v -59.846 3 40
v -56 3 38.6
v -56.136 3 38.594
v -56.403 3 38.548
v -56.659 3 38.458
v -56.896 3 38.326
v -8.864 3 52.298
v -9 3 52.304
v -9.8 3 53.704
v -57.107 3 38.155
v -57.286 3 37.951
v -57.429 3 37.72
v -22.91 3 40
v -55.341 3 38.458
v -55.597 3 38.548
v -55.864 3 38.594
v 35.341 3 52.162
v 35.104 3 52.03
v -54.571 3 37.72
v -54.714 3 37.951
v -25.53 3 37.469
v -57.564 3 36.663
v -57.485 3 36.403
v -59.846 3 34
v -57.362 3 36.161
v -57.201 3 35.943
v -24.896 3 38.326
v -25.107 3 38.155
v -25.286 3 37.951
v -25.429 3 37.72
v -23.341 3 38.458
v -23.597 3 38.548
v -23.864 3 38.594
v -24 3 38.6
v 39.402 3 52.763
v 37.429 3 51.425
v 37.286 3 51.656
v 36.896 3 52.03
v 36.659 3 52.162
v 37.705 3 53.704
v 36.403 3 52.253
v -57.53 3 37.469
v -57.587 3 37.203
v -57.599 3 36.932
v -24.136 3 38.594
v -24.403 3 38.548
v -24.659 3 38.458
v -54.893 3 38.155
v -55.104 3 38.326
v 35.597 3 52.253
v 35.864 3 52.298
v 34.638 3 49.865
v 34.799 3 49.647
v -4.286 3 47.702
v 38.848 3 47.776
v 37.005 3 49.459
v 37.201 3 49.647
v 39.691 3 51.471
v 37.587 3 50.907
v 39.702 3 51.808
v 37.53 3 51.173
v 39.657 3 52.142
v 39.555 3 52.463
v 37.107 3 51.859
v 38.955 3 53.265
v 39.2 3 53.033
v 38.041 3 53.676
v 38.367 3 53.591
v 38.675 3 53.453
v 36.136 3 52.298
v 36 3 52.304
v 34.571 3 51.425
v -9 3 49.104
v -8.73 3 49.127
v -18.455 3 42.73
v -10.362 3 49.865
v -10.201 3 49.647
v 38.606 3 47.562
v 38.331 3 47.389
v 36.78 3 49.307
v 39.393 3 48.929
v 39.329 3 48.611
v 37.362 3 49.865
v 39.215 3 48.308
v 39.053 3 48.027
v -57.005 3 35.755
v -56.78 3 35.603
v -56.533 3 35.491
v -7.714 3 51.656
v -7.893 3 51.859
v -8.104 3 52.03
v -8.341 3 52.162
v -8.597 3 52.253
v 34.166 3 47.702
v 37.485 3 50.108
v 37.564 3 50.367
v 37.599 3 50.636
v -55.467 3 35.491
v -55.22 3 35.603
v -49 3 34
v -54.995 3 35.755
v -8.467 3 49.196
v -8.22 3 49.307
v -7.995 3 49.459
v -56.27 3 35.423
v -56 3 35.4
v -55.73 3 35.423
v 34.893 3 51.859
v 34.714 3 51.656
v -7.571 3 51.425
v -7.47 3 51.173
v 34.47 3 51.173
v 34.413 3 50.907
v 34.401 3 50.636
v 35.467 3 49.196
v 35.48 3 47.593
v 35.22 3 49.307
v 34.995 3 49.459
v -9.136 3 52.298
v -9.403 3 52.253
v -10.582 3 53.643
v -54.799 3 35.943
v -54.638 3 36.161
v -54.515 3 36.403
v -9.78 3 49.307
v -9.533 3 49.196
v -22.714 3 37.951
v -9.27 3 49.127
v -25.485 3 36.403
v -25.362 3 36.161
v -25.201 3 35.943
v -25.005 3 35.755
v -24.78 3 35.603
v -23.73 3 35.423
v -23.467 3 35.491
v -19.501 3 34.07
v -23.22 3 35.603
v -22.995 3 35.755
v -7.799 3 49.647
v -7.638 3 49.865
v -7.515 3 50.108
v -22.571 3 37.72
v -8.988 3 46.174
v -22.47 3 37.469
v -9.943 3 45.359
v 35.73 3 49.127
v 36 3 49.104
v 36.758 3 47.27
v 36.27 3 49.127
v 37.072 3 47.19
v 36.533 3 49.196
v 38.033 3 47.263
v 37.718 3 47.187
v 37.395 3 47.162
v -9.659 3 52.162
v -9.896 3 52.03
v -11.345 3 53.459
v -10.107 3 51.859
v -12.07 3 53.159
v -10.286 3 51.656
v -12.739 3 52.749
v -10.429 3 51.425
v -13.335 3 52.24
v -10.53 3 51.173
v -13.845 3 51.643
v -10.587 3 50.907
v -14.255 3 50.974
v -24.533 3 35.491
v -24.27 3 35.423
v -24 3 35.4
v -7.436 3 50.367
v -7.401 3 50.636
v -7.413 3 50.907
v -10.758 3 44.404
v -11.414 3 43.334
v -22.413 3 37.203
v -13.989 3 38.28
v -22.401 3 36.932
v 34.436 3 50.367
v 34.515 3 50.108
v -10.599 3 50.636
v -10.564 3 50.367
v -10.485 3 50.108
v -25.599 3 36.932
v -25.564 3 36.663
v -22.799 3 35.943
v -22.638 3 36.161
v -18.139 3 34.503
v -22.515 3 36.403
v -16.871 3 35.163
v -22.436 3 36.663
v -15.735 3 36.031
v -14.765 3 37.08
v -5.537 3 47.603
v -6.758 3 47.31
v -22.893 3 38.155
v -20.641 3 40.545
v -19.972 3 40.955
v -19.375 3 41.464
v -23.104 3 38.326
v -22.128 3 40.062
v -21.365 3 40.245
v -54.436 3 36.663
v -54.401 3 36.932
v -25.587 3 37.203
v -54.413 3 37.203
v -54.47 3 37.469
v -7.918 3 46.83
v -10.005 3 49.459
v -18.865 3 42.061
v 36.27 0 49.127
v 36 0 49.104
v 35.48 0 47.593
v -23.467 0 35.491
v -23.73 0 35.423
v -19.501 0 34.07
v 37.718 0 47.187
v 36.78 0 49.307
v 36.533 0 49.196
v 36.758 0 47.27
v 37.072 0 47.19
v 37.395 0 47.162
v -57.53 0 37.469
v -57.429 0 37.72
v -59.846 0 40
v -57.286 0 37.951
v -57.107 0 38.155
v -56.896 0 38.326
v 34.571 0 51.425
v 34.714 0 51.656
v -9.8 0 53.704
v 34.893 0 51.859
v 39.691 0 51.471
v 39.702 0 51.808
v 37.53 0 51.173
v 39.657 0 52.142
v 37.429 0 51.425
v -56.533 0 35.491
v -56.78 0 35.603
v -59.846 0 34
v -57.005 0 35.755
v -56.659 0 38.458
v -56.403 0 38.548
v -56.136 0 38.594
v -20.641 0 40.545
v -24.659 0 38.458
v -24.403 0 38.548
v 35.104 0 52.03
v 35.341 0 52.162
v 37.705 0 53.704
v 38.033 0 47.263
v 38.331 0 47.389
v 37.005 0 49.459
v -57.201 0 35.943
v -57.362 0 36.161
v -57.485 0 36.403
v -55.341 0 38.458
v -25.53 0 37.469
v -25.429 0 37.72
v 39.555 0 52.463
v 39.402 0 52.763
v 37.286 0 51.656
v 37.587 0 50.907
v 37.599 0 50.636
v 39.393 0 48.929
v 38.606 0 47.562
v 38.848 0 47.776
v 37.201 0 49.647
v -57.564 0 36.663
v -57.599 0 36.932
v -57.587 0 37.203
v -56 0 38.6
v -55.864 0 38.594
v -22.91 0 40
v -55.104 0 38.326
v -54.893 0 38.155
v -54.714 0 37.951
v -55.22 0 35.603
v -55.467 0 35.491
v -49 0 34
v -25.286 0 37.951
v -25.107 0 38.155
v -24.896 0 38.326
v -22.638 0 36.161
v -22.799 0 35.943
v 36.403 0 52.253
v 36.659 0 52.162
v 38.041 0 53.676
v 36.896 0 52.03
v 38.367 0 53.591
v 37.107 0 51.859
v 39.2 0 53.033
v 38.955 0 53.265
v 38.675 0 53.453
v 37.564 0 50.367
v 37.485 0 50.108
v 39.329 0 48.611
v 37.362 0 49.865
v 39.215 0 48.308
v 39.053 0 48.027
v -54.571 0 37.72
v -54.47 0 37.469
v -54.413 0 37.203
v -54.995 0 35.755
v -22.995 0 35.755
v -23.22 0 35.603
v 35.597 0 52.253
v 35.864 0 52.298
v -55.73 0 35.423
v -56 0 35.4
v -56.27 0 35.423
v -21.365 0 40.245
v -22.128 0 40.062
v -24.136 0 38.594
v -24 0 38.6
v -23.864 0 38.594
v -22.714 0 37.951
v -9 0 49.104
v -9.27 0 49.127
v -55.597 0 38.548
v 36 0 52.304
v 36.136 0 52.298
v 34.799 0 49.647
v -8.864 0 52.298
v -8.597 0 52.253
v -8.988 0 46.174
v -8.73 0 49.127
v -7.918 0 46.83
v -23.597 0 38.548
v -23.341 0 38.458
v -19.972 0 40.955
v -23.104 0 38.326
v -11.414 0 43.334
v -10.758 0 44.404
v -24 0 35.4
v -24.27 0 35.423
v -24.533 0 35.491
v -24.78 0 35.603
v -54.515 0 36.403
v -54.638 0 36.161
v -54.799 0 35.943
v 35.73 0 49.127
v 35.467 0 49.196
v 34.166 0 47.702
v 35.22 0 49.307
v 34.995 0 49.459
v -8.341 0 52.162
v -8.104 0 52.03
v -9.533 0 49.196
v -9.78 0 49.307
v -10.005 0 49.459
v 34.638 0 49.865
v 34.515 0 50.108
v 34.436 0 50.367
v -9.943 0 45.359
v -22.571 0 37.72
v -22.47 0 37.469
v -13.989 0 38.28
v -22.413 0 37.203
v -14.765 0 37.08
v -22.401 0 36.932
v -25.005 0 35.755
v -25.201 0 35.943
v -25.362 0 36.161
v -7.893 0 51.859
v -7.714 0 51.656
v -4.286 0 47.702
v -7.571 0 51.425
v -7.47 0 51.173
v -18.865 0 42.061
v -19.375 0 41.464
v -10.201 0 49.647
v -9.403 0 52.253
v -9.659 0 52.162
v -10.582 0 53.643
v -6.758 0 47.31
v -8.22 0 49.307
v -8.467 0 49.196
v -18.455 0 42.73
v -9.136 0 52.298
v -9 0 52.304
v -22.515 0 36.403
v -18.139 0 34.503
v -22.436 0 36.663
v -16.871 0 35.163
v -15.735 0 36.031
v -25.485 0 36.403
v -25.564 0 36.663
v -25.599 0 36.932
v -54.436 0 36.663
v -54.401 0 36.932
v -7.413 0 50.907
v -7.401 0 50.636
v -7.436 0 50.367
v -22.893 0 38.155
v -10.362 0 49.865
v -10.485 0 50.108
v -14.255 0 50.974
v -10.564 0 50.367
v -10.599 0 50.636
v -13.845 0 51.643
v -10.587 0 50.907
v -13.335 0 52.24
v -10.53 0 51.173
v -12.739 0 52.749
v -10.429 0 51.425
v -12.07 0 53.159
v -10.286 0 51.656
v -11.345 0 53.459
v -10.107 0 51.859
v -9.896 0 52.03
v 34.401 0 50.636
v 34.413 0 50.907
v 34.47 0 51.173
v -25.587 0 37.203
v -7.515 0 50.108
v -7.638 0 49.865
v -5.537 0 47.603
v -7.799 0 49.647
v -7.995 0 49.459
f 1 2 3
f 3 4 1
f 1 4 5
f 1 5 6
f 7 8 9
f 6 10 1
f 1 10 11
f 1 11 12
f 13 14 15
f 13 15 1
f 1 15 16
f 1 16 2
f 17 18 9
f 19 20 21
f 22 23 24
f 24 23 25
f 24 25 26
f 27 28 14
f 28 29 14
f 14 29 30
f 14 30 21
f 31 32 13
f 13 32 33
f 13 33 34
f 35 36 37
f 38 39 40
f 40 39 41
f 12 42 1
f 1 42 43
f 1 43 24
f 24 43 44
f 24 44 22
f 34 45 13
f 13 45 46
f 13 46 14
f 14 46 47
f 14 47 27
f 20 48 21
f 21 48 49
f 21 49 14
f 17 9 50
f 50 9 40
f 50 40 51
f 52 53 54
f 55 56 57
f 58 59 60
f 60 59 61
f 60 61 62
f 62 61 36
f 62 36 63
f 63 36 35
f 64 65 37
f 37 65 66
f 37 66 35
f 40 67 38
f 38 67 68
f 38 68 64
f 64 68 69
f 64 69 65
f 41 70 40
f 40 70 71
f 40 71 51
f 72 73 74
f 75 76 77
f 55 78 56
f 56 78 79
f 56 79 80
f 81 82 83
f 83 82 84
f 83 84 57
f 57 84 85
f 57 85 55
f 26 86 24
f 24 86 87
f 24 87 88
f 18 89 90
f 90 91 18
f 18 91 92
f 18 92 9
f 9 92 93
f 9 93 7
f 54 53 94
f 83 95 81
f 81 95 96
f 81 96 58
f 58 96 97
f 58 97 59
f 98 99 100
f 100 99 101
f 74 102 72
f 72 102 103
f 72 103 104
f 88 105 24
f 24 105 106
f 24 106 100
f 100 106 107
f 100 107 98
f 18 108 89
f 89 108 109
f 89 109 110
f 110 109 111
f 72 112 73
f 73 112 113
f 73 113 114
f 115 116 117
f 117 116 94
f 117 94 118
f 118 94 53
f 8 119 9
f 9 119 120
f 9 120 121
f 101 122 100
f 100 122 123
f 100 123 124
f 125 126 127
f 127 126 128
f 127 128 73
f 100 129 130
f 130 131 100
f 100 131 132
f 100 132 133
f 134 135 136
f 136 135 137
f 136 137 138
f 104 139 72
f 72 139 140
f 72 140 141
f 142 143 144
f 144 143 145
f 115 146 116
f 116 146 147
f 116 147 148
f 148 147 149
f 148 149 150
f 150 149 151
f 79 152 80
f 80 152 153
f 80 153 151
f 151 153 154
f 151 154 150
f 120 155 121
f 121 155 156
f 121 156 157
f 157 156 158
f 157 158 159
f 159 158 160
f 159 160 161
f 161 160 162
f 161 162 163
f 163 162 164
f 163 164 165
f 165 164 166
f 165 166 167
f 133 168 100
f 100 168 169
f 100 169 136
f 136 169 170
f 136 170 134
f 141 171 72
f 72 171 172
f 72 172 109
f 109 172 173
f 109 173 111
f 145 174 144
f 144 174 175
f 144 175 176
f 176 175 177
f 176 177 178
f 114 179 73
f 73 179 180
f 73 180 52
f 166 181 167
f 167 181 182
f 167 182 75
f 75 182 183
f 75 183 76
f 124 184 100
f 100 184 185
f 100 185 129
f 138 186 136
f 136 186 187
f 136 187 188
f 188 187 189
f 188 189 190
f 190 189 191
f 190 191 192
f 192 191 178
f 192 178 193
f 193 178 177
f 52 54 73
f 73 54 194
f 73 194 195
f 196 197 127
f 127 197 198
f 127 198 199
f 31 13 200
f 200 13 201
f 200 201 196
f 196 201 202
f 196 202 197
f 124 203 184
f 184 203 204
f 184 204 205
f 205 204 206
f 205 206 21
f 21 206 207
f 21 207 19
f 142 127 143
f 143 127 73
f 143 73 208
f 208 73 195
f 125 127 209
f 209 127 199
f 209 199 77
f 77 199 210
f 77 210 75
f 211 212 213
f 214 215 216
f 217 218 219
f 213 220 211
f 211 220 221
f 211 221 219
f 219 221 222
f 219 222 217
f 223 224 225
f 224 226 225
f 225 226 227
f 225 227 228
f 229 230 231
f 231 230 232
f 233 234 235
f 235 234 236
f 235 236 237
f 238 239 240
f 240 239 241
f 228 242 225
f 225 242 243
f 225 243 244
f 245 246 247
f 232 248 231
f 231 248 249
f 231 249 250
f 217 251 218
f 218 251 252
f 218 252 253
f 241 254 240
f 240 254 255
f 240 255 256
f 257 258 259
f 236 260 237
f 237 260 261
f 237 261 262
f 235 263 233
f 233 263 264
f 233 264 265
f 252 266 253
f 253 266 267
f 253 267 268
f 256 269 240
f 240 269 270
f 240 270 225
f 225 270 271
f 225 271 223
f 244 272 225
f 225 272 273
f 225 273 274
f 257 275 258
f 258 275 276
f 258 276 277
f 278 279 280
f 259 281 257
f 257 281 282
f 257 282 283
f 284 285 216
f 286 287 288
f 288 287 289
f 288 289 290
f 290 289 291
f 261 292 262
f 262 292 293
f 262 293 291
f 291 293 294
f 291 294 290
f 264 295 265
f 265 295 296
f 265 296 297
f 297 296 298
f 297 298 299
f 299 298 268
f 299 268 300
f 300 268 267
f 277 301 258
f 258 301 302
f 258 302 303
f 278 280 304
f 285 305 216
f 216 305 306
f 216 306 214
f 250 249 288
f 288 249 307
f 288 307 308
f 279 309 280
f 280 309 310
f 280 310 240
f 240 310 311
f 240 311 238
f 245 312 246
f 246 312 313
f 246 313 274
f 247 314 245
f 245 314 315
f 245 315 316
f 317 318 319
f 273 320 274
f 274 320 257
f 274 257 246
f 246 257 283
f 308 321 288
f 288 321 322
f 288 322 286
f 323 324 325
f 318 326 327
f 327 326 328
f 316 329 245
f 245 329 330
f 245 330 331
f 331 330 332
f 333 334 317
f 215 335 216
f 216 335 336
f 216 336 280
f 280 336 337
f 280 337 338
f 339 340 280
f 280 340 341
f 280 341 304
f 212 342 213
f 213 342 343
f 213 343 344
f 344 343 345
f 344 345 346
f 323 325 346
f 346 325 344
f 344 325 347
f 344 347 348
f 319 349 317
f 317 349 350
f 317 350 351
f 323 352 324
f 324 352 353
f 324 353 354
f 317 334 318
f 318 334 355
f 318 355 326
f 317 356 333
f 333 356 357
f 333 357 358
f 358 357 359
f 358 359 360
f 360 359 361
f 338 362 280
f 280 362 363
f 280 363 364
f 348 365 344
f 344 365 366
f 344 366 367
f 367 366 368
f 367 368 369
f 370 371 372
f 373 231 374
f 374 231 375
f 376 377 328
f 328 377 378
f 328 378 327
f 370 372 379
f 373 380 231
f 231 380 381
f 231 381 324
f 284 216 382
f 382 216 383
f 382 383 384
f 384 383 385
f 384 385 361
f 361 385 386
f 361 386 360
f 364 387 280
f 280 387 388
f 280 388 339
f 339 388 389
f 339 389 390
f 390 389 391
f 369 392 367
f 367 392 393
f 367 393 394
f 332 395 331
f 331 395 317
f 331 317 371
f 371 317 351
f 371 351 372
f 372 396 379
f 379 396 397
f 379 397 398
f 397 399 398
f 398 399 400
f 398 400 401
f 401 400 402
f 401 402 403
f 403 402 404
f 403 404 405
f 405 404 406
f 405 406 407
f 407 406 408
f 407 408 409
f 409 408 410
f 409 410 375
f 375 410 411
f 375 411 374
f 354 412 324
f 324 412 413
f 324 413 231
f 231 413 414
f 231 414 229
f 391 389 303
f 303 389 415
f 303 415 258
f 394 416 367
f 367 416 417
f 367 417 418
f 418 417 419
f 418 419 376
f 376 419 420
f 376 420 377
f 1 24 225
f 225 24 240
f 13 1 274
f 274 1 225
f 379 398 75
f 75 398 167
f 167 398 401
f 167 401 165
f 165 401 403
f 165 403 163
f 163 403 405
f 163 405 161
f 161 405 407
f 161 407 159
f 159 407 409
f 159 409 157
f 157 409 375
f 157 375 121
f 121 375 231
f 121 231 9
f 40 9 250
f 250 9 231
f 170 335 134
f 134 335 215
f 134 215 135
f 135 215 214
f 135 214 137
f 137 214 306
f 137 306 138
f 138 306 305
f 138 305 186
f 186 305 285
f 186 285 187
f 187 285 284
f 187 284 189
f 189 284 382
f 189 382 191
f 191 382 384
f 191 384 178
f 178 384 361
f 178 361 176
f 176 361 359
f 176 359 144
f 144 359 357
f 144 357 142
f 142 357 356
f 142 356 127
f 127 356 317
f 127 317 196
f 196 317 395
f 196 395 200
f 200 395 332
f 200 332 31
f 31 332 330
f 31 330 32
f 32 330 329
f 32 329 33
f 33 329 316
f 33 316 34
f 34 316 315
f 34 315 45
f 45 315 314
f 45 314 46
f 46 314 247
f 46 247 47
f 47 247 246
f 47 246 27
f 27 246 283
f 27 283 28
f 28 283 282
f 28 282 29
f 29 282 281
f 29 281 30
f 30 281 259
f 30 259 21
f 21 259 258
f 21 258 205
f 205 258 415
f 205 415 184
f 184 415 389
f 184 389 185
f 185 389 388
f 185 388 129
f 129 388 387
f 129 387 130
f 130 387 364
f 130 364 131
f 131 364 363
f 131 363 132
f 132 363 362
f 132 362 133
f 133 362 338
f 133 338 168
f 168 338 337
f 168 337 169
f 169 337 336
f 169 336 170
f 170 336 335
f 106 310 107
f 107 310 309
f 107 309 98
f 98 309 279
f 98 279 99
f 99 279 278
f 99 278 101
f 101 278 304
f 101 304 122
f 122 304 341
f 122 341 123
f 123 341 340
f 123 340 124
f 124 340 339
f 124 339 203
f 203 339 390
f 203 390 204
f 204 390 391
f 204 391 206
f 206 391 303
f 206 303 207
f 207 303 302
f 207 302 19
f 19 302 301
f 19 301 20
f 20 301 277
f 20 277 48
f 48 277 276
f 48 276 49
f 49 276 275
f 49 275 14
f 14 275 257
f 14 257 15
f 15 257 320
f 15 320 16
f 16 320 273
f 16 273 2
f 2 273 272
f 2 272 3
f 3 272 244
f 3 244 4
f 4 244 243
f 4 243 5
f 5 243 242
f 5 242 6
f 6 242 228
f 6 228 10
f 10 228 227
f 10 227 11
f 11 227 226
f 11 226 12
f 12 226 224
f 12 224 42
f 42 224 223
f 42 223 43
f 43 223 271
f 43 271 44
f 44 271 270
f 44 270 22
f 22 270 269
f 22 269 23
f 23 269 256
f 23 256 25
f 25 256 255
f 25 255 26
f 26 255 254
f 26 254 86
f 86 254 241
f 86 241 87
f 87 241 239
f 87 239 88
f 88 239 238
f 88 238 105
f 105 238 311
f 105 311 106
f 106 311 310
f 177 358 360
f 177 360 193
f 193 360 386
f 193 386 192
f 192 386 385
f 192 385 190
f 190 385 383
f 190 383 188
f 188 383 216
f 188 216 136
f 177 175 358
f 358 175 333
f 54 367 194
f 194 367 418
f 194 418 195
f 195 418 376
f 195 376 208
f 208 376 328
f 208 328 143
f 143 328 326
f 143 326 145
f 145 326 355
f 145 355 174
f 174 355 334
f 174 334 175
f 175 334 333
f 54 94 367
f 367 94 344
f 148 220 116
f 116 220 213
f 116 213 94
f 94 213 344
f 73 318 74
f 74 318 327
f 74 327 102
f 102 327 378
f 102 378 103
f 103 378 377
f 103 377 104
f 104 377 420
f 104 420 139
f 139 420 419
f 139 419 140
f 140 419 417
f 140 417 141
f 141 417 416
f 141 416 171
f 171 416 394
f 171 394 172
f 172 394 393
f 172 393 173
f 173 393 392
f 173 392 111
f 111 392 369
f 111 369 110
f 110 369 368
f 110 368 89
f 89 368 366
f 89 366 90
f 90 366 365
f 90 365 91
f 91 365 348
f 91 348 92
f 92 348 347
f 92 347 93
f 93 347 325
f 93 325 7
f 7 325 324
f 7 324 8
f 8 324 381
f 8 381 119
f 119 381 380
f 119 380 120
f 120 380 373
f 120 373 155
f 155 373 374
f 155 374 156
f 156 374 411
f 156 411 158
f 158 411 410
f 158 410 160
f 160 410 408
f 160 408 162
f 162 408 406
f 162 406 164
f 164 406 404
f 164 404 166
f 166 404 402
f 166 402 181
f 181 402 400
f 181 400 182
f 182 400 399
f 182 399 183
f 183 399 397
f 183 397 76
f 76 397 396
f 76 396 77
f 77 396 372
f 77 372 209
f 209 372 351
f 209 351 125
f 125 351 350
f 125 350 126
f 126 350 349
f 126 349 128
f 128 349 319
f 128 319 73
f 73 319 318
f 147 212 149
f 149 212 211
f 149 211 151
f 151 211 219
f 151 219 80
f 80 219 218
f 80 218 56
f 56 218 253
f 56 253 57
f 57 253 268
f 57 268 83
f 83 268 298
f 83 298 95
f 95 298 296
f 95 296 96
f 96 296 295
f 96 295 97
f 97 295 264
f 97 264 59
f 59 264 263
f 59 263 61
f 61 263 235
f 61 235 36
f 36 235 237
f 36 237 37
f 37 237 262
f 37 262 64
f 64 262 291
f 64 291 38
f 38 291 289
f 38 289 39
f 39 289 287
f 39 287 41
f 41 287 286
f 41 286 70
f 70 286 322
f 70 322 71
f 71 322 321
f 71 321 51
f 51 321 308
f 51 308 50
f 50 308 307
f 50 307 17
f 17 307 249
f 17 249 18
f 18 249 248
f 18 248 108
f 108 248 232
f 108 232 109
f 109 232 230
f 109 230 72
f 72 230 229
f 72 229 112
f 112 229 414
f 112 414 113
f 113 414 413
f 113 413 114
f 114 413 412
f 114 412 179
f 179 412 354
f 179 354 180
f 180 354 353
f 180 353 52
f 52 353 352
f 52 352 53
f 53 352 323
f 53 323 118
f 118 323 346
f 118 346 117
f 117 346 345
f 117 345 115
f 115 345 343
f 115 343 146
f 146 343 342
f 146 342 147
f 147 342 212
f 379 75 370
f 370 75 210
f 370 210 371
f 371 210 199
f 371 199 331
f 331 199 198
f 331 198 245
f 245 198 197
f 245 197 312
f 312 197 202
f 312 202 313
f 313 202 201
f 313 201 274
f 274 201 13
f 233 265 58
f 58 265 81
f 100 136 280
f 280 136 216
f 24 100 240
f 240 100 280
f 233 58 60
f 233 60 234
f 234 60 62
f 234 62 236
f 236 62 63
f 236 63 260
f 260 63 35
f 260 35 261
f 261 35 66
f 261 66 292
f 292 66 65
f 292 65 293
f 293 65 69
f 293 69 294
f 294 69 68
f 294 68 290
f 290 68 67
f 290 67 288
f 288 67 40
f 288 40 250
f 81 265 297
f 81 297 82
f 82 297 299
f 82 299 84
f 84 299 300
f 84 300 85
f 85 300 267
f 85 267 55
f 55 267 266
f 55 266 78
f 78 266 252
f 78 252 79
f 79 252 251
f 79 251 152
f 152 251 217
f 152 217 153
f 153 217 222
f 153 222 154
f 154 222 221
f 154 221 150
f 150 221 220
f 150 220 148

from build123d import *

# Parameters (mm, degrees)
SKETCH_1_R          = 1.6
SKETCH_1_R_2        = 1
SKETCH_1_W          = 24
SKETCH_1_H          = 13
EXTRUDE_1_DEPTH     = 3
SKETCH_2_R          = 1.6
SKETCH_2_W          = 24
SKETCH_2_H          = 10
EXTRUDE_2_DEPTH     = 9
SKETCH_3_R          = 6
CUT_EXTRUDE_1_DEPTH = 20
SKETCH_4_R          = 4
CUT_EXTRUDE_2_DEPTH = 72.704206567
SKETCH_6_R          = 5.6
CUT_EXTRUDE_3_DEPTH = 5
SKETCH_7_R          = 5.6
CUT_EXTRUDE_4_DEPTH = 6
FILLET_5_R          = 5
FILLET_6_R          = 5
CUT_EXTRUDE1_DEPTH  = 13.0000001
FILLET1_R           = 2


with BuildPart() as part:
    # Эскиз1 → Бобышка-Вытянуть1 (new body)
    with BuildSketch(Plane(origin=(0, 0, 0), x_dir=(1, 0, 0), z_dir=(0, 1, 0))):
        with BuildLine():
            Line((-59.846473334, -34), (-49.887758312, 18))
            Line((-49.887758312, 18), (36.612736258, 18))
            Line((36.612736258, 18), (75.112241688, 5.920216985))
            Line((75.112241688, 5.920216985), (75.112241688, -16.079783015))
            Line((75.112241688, -16.079783015), (41.245672077, -52.430849732))
            ThreePointArc((41.245672077, -52.430849732), (39.914841322, -53.372078747), (38.318998701, -53.704206567))
            Line((38.318998701, -53.704206567), (-9.799827382, -53.704206567))
            ThreePointArc((-9.799827382, -53.704206567), (-12.412320205, -52.967407389), (-14.254860003, -50.974159066))
            Line((-14.254860003, -50.974159066), (-19.846473334, -40))
            Line((-19.846473334, -40), (-59.846473334, -40))
            Line((-59.846473334, -40), (-59.846473334, -34))
        make_face()
        with Locations((-8, 14)):
            Circle(SKETCH_1_R, mode=Mode.SUBTRACT)
        with Locations((8, 14)):
            Circle(SKETCH_1_R, mode=Mode.SUBTRACT)
        with Locations((-8, -16)):
            Circle(SKETCH_1_R, mode=Mode.SUBTRACT)
        with Locations((8, -16)):
            Circle(SKETCH_1_R, mode=Mode.SUBTRACT)
        with Locations((-47, 14)):
            Circle(SKETCH_1_R, mode=Mode.SUBTRACT)
        with Locations((70, 2)):
            Circle(SKETCH_1_R, mode=Mode.SUBTRACT)
        with Locations((50, 2)):
            Circle(SKETCH_1_R, mode=Mode.SUBTRACT)
        with Locations((18, 14)):
            Circle(SKETCH_1_R, mode=Mode.SUBTRACT)
        with Locations((-47, -16)):
            Circle(SKETCH_1_R, mode=Mode.SUBTRACT)
        with Locations((-56, -37)):
            Circle(SKETCH_1_R, mode=Mode.SUBTRACT)
        with Locations((-24, -37)):
            Circle(SKETCH_1_R, mode=Mode.SUBTRACT)
        with Locations((50, -16)):
            Circle(SKETCH_1_R, mode=Mode.SUBTRACT)
        with Locations((70, -16)):
            Circle(SKETCH_1_R, mode=Mode.SUBTRACT)
        with Locations((-9, -50.704206567)):
            Circle(SKETCH_1_R, mode=Mode.SUBTRACT)
        with Locations((36, -50.704206567)):
            Circle(SKETCH_1_R, mode=Mode.SUBTRACT)
        with Locations((60, -7)):
            Circle(SKETCH_1_R, mode=Mode.SUBTRACT)
        with Locations((-42, -8)):
            Circle(SKETCH_1_R_2, mode=Mode.SUBTRACT)
        with Locations((-14, -8)):
            Circle(SKETCH_1_R_2, mode=Mode.SUBTRACT)
        with Locations((-42, 8)):
            Circle(SKETCH_1_R_2, mode=Mode.SUBTRACT)
        with Locations((-14, 8)):
            Circle(SKETCH_1_R_2, mode=Mode.SUBTRACT)
        with Locations((14, 0)):
            Circle(SKETCH_1_R_2, mode=Mode.SUBTRACT)
        with Locations((42, 0)):
            Circle(SKETCH_1_R_2, mode=Mode.SUBTRACT)
        with Locations((28, 0)):
            Rectangle(SKETCH_1_W, SKETCH_1_H, mode=Mode.SUBTRACT)
        with Locations((-28, 8)):
            Rectangle(SKETCH_1_W, SKETCH_1_H, mode=Mode.SUBTRACT)
        with Locations((-28, -8)):
            Rectangle(SKETCH_1_W, SKETCH_1_H, mode=Mode.SUBTRACT)
        with BuildLine():
            Line((-47.677053254, -24.900709984), (-49.000145857, -34))
            Line((-49.000145857, -34), (-22.297676486, -34))
            Line((-22.297676486, -34), (-19.846473334, -34))
            ThreePointArc((-19.846473334, -34), (-16.425778662, -35.467187694), (-13.988679802, -38.280431537))
            Line((-13.988679802, -38.280431537), (-11.413907263, -43.333707171))
            ThreePointArc((-11.413907263, -43.333707171), (-8.465843587, -46.522904488), (-4.28585507, -47.701783173))
            Line((-4.28585507, -47.701783173), (34.165827616, -47.701783173))
            ThreePointArc((34.165827616, -47.701783173), (37.877016972, -46.788889321), (40.741225842, -44.258551563))
            Line((40.741225842, -44.258551563), (51.02606102, -29.417576293))
            ThreePointArc((51.02606102, -29.417576293), (51.409841961, -23.216607983), (46.09451235, -20))
            Line((46.09451235, -20), (-41.778616049, -20))
            ThreePointArc((-41.778616049, -20), (-45.612951708, -21.385038456), (-47.677053254, -24.900709984))
        make_face(mode=Mode.SUBTRACT)
    extrude(amount=EXTRUDE_1_DEPTH)

    # Эскиз2 → Бобышка-Вытянуть2 (add)
    with BuildSketch(Plane(origin=(0, 0, 0), x_dir=(1, 0, 0), z_dir=(0, 1, 0))):
        Polygon((46.101706289, 15.022696844), (46.09451235, -20), (71.459960933, -20), (75.112241688, -16.079783015), (75.112241688, 5.920216985), align=None)
        with Locations((50, 2)):
            Circle(SKETCH_2_R, mode=Mode.SUBTRACT)
        with Locations((70, 2)):
            Circle(SKETCH_2_R, mode=Mode.SUBTRACT)
        with Locations((70, -16)):
            Circle(SKETCH_2_R, mode=Mode.SUBTRACT)
        with Locations((50, -16)):
            Circle(SKETCH_2_R, mode=Mode.SUBTRACT)
        with Locations((60, -7)):
            Circle(SKETCH_2_R, mode=Mode.SUBTRACT)
        with Locations((0, 13)):
            Rectangle(SKETCH_2_W, SKETCH_2_H)
        with Locations((-8, 14)):
            Circle(SKETCH_2_R, mode=Mode.SUBTRACT)
        with Locations((8, 14)):
            Circle(SKETCH_2_R, mode=Mode.SUBTRACT)
        with Locations((0, -14.961092538)):
            Rectangle(SKETCH_2_W, SKETCH_2_H)
        with Locations((-8, -16)):
            Circle(SKETCH_2_R, mode=Mode.SUBTRACT)
        with Locations((8, -16)):
            Circle(SKETCH_2_R, mode=Mode.SUBTRACT)
    extrude(amount=-EXTRUDE_2_DEPTH)

    # Эскиз3 → Вырез-Вытянуть1 (cut)
    with BuildSketch(Plane(origin=(75.112241688, 0, 0), x_dir=(0, 0, -1), z_dir=(1, 0, 0))):
        with Locations((-7.384625177, -9)):
            Circle(SKETCH_3_R)
    extrude(amount=-CUT_EXTRUDE_1_DEPTH, mode=Mode.SUBTRACT)

    # Эскиз4 → Вырез-Вытянуть2 (cut, through all)
    with BuildSketch(Plane(origin=(0, 0, -18), x_dir=(-1, 0, 0), z_dir=(0, 0, -1))):
        with Locations((0, -9)):
            Circle(SKETCH_4_R)
    extrude(amount=-CUT_EXTRUDE_2_DEPTH, mode=Mode.SUBTRACT)

    # Эскиз6 → Вырез-Вытянуть3 (cut)
    with BuildSketch(Plane(origin=(0, 0, -18), x_dir=(-1, 0, 0), z_dir=(0, 0, -1))):
        with Locations((0, -9)):
            Circle(SKETCH_6_R)
    extrude(amount=-CUT_EXTRUDE_3_DEPTH, mode=Mode.SUBTRACT)

    # Эскиз7 → Вырез-Вытянуть4 (cut)
    with BuildSketch(Plane.XY.offset(19.961092538)):
        with Locations((0, -9)):
            Circle(SKETCH_7_R)
    extrude(amount=-CUT_EXTRUDE_4_DEPTH, mode=Mode.SUBTRACT)

    # Скругление5
    fillet_5_edges = [part.edges().sort_by_distance(p)[0] for p in [
        (-49.887758312, 1.5, -18),
    ]]
    fillet(fillet_5_edges, radius=FILLET_5_R)

    # Скругление6
    fillet_6_edges = [part.edges().sort_by_distance(p)[0] for p in [
        (-19.846473334, 1.5, 40),
    ]]
    fillet(fillet_6_edges, radius=FILLET_6_R)

    # Sketch1 → Cut-Extrude1 (cut, through all)
    with BuildSketch(Plane(origin=(0, 3, 0), x_dir=(1, 0, 0), z_dir=(0, 1, 0))):
        with BuildLine():
            Line((-59.846473334, -34), (-49.000145857, -34))
            Line((-49.000145857, -34), (39.05274243, -34.20975492))
            Line((39.05274243, -34.20975492), (39.05274243, -46.035665363))
            Line((39.05274243, -46.035665363), (39.914841322, -53.372078747))
            ThreePointArc((39.914841322, -53.372078747), (27.574901916, 149.639179971), (-59.846473334, -34))
        make_face()
    extrude(amount=-CUT_EXTRUDE1_DEPTH, mode=Mode.SUBTRACT)

    # Fillet1
    fillet1_edges = [part.edges().sort_by_distance(p)[0] for p in [
        (39.914841322, 1.5, 53.372078747),
        (39.05274243, 1.5, 46.035665363),
    ]]
    fillet(fillet1_edges, radius=FILLET1_R)


solid = part.part
